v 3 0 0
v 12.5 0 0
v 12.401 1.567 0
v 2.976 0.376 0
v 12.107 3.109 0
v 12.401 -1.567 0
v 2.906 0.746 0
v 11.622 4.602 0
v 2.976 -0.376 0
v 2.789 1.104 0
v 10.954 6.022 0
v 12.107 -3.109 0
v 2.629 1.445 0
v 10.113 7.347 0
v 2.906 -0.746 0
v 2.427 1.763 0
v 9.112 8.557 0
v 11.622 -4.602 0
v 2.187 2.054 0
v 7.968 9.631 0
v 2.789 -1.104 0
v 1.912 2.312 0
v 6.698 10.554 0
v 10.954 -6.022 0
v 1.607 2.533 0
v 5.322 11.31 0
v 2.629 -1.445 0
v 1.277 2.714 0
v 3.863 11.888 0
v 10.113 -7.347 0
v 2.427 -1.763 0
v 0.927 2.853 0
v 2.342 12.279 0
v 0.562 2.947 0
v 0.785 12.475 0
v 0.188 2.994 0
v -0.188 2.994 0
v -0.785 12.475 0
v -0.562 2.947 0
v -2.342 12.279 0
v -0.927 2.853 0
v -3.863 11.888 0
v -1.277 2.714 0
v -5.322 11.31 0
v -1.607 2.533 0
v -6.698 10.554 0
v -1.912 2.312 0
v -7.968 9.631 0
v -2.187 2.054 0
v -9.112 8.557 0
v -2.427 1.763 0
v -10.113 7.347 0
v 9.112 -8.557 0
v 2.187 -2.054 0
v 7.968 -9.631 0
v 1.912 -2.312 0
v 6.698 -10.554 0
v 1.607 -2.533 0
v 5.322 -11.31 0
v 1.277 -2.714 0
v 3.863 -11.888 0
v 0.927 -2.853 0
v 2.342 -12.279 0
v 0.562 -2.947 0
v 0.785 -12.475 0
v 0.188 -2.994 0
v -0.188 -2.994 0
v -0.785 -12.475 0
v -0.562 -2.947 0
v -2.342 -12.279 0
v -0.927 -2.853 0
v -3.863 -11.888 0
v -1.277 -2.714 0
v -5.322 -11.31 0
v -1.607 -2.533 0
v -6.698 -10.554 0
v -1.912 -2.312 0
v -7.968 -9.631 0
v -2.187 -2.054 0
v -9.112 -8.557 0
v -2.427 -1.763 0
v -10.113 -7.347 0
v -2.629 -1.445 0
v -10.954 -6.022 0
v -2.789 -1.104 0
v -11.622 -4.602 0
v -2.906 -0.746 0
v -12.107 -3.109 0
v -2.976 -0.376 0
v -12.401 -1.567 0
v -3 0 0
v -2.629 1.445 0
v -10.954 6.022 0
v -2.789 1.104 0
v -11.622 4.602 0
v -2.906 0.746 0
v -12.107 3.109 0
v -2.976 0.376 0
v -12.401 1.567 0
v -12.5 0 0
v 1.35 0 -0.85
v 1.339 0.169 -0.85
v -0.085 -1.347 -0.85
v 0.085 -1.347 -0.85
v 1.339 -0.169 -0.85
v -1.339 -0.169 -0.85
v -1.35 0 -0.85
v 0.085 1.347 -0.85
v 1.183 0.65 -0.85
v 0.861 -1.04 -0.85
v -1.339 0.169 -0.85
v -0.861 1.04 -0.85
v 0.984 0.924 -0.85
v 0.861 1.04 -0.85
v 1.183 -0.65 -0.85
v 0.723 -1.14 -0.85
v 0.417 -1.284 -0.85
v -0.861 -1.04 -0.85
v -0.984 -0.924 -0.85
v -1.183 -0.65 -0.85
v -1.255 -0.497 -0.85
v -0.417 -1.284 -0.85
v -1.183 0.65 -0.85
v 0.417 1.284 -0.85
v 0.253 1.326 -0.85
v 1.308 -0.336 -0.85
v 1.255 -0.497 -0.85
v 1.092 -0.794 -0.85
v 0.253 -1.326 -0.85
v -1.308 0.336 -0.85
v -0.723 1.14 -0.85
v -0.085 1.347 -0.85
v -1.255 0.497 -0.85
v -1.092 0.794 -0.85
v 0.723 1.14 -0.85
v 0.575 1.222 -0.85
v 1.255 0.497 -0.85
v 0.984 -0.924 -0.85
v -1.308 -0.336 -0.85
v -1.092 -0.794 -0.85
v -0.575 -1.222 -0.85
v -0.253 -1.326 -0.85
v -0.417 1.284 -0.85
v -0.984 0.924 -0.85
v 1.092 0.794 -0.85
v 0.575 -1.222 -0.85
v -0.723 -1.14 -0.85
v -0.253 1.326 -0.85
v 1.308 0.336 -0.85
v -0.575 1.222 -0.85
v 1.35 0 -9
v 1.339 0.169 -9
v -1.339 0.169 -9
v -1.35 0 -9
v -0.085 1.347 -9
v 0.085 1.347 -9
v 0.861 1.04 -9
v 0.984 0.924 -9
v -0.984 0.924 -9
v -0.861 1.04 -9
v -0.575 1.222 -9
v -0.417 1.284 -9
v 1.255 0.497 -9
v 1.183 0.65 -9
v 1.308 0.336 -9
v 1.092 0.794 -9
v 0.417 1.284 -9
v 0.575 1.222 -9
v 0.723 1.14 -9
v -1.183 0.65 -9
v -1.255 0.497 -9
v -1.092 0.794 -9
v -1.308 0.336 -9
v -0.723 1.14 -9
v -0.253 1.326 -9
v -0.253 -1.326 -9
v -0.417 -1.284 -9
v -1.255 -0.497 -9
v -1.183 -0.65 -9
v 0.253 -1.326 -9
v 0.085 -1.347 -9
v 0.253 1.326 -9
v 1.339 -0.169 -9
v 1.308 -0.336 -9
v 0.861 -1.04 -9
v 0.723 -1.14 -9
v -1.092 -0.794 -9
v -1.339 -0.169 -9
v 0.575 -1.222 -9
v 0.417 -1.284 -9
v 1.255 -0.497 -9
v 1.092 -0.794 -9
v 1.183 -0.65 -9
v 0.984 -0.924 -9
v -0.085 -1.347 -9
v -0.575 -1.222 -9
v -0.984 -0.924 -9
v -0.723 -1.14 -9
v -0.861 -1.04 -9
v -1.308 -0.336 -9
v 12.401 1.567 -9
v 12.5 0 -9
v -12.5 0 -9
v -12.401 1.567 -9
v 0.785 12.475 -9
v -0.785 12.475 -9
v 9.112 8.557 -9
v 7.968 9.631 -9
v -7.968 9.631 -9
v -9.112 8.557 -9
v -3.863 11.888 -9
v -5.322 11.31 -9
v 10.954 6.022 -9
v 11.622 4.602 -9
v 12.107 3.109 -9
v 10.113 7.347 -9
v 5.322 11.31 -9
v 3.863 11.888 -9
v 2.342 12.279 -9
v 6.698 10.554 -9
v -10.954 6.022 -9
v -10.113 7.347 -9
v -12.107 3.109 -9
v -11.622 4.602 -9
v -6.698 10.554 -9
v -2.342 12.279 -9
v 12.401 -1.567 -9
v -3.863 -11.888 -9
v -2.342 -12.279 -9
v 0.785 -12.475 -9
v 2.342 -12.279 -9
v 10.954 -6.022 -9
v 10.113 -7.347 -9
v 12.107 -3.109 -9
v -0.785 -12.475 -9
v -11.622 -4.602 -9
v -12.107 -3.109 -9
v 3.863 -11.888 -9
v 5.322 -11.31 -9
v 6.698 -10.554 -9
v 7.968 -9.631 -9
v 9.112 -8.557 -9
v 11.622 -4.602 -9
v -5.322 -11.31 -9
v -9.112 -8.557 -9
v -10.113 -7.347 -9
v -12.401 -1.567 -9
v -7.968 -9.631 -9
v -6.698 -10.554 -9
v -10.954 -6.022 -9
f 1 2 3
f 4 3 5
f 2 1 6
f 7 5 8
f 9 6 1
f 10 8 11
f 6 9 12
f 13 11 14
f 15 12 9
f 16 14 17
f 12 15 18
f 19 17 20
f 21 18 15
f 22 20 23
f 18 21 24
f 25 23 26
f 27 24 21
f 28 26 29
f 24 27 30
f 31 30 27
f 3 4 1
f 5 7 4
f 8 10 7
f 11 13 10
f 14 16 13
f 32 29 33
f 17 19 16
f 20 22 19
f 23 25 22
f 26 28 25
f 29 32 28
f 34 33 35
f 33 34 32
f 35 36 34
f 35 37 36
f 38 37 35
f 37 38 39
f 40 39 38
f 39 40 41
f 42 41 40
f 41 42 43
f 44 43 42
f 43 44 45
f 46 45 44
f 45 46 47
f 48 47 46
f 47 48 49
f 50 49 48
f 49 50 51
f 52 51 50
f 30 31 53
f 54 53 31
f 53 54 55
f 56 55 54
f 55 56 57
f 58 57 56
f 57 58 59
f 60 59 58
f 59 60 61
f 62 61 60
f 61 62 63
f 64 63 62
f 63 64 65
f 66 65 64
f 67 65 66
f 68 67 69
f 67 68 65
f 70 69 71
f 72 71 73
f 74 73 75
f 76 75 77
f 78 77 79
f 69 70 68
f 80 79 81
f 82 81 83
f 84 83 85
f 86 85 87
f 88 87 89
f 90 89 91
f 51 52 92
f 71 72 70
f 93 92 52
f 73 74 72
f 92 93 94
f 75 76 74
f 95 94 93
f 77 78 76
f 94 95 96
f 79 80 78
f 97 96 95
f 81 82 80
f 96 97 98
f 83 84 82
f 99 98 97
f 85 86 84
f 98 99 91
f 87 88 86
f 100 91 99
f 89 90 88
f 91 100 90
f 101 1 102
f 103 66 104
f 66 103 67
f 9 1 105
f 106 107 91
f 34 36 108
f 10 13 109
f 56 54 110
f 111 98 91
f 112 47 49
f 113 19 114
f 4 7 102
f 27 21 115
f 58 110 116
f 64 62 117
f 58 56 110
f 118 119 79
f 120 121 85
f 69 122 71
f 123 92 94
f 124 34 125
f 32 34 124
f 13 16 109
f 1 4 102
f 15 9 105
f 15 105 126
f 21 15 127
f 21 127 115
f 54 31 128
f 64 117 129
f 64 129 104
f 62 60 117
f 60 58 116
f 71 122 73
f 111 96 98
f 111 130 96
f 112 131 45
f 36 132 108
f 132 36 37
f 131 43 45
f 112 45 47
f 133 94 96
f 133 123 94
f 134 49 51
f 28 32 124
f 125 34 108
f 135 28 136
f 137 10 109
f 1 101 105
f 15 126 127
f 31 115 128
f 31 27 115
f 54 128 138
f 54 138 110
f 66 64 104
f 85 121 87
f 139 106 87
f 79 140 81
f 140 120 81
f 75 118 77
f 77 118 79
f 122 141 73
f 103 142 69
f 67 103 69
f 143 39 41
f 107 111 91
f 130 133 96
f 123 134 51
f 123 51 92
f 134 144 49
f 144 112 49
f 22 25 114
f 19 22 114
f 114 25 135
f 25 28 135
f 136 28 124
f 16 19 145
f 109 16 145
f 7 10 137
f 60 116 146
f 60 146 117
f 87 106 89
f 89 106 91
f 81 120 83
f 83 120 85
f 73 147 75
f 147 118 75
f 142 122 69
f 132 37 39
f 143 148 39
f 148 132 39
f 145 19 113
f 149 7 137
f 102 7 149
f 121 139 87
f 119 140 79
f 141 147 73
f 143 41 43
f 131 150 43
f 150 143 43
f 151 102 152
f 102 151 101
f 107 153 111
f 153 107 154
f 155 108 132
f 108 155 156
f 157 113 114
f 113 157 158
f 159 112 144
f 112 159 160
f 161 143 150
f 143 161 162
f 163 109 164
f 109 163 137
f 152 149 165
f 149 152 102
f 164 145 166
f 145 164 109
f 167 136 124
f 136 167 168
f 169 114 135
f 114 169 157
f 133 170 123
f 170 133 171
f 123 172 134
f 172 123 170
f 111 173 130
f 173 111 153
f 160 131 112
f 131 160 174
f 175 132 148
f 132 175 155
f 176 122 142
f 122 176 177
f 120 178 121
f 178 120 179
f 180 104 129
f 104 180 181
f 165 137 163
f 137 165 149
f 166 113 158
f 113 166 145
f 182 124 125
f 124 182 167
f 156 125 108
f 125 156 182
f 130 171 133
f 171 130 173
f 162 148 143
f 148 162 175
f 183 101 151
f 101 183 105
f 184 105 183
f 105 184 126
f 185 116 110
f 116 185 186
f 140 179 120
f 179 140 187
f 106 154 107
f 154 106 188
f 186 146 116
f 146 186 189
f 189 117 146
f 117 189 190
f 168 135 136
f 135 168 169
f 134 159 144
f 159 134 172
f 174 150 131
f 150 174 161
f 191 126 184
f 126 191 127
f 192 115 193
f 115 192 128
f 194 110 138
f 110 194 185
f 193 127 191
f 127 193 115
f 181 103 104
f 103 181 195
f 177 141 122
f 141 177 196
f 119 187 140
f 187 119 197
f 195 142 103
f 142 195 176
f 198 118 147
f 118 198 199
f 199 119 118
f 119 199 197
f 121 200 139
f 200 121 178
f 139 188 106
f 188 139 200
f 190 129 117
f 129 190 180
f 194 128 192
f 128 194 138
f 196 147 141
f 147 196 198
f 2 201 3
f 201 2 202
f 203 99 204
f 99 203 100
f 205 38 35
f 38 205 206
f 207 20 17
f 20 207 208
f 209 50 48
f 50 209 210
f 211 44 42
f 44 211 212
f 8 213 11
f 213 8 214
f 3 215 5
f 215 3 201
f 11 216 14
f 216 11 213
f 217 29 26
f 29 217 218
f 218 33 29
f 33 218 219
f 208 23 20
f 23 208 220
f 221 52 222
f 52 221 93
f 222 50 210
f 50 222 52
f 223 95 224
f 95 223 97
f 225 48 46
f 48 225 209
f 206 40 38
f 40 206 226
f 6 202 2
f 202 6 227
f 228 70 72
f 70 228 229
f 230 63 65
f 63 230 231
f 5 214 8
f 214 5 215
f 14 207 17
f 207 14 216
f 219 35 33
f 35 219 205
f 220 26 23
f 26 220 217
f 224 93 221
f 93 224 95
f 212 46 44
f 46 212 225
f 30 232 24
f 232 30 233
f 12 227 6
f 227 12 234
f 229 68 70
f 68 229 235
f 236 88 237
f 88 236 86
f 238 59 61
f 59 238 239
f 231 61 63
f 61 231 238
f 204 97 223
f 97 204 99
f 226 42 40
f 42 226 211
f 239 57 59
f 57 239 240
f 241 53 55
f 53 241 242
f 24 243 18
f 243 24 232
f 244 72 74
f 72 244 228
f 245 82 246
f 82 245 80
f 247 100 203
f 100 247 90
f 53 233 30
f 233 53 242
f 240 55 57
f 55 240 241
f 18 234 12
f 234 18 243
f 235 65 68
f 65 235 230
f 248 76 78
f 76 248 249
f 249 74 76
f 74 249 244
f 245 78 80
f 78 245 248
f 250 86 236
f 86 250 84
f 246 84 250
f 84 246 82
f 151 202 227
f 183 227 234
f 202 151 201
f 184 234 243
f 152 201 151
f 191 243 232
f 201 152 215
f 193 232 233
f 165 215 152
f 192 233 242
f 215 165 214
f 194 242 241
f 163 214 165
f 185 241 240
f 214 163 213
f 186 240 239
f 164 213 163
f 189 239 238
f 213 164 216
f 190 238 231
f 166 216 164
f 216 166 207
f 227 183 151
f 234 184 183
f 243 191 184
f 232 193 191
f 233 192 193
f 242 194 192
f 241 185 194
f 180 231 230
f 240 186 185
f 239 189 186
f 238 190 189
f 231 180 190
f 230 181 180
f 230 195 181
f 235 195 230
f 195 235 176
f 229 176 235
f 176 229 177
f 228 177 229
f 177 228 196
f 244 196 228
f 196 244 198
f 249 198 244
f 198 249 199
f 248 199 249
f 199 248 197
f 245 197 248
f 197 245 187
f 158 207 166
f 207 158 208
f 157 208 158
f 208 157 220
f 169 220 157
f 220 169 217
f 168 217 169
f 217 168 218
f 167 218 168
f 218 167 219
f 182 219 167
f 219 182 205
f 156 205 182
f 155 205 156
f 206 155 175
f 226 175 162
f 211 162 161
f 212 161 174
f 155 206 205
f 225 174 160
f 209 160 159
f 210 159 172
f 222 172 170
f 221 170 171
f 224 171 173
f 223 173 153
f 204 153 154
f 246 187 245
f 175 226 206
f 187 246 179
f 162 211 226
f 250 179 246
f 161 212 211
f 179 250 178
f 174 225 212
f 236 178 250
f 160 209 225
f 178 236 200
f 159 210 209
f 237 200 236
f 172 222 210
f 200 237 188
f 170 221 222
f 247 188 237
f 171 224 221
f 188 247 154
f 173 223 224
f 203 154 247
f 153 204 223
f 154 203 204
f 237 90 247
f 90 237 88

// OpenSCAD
$fn = 50;

difference() {
	union() {
		translate(v = [0, 0, -9.0]) {
			cylinder(h = 9, r = 12.5);
		}
	}
	union() {
		translate(v = [0, 0, 0]) {
			rotate(a = [0, 0, 0]) {
				difference() {
					union() {
						translate(v = [0, 0, -12.0]) {
							cylinder(h = 12, r = 1.0);
						}
						translate(v = [0, 0, -0.85]) {
							cylinder(h = 0.85, r1 = 1.35, r2 = 3.0);
						}
						translate(v = [0, 0, -12.0]) {
							cylinder(h = 12, r = 1.35);
						}
						translate(v = [0, 0, -12.0]) {
							cylinder(h = 12, r = 1.0);
						}
					}
					union();
				}
			}
		}
	}
}
